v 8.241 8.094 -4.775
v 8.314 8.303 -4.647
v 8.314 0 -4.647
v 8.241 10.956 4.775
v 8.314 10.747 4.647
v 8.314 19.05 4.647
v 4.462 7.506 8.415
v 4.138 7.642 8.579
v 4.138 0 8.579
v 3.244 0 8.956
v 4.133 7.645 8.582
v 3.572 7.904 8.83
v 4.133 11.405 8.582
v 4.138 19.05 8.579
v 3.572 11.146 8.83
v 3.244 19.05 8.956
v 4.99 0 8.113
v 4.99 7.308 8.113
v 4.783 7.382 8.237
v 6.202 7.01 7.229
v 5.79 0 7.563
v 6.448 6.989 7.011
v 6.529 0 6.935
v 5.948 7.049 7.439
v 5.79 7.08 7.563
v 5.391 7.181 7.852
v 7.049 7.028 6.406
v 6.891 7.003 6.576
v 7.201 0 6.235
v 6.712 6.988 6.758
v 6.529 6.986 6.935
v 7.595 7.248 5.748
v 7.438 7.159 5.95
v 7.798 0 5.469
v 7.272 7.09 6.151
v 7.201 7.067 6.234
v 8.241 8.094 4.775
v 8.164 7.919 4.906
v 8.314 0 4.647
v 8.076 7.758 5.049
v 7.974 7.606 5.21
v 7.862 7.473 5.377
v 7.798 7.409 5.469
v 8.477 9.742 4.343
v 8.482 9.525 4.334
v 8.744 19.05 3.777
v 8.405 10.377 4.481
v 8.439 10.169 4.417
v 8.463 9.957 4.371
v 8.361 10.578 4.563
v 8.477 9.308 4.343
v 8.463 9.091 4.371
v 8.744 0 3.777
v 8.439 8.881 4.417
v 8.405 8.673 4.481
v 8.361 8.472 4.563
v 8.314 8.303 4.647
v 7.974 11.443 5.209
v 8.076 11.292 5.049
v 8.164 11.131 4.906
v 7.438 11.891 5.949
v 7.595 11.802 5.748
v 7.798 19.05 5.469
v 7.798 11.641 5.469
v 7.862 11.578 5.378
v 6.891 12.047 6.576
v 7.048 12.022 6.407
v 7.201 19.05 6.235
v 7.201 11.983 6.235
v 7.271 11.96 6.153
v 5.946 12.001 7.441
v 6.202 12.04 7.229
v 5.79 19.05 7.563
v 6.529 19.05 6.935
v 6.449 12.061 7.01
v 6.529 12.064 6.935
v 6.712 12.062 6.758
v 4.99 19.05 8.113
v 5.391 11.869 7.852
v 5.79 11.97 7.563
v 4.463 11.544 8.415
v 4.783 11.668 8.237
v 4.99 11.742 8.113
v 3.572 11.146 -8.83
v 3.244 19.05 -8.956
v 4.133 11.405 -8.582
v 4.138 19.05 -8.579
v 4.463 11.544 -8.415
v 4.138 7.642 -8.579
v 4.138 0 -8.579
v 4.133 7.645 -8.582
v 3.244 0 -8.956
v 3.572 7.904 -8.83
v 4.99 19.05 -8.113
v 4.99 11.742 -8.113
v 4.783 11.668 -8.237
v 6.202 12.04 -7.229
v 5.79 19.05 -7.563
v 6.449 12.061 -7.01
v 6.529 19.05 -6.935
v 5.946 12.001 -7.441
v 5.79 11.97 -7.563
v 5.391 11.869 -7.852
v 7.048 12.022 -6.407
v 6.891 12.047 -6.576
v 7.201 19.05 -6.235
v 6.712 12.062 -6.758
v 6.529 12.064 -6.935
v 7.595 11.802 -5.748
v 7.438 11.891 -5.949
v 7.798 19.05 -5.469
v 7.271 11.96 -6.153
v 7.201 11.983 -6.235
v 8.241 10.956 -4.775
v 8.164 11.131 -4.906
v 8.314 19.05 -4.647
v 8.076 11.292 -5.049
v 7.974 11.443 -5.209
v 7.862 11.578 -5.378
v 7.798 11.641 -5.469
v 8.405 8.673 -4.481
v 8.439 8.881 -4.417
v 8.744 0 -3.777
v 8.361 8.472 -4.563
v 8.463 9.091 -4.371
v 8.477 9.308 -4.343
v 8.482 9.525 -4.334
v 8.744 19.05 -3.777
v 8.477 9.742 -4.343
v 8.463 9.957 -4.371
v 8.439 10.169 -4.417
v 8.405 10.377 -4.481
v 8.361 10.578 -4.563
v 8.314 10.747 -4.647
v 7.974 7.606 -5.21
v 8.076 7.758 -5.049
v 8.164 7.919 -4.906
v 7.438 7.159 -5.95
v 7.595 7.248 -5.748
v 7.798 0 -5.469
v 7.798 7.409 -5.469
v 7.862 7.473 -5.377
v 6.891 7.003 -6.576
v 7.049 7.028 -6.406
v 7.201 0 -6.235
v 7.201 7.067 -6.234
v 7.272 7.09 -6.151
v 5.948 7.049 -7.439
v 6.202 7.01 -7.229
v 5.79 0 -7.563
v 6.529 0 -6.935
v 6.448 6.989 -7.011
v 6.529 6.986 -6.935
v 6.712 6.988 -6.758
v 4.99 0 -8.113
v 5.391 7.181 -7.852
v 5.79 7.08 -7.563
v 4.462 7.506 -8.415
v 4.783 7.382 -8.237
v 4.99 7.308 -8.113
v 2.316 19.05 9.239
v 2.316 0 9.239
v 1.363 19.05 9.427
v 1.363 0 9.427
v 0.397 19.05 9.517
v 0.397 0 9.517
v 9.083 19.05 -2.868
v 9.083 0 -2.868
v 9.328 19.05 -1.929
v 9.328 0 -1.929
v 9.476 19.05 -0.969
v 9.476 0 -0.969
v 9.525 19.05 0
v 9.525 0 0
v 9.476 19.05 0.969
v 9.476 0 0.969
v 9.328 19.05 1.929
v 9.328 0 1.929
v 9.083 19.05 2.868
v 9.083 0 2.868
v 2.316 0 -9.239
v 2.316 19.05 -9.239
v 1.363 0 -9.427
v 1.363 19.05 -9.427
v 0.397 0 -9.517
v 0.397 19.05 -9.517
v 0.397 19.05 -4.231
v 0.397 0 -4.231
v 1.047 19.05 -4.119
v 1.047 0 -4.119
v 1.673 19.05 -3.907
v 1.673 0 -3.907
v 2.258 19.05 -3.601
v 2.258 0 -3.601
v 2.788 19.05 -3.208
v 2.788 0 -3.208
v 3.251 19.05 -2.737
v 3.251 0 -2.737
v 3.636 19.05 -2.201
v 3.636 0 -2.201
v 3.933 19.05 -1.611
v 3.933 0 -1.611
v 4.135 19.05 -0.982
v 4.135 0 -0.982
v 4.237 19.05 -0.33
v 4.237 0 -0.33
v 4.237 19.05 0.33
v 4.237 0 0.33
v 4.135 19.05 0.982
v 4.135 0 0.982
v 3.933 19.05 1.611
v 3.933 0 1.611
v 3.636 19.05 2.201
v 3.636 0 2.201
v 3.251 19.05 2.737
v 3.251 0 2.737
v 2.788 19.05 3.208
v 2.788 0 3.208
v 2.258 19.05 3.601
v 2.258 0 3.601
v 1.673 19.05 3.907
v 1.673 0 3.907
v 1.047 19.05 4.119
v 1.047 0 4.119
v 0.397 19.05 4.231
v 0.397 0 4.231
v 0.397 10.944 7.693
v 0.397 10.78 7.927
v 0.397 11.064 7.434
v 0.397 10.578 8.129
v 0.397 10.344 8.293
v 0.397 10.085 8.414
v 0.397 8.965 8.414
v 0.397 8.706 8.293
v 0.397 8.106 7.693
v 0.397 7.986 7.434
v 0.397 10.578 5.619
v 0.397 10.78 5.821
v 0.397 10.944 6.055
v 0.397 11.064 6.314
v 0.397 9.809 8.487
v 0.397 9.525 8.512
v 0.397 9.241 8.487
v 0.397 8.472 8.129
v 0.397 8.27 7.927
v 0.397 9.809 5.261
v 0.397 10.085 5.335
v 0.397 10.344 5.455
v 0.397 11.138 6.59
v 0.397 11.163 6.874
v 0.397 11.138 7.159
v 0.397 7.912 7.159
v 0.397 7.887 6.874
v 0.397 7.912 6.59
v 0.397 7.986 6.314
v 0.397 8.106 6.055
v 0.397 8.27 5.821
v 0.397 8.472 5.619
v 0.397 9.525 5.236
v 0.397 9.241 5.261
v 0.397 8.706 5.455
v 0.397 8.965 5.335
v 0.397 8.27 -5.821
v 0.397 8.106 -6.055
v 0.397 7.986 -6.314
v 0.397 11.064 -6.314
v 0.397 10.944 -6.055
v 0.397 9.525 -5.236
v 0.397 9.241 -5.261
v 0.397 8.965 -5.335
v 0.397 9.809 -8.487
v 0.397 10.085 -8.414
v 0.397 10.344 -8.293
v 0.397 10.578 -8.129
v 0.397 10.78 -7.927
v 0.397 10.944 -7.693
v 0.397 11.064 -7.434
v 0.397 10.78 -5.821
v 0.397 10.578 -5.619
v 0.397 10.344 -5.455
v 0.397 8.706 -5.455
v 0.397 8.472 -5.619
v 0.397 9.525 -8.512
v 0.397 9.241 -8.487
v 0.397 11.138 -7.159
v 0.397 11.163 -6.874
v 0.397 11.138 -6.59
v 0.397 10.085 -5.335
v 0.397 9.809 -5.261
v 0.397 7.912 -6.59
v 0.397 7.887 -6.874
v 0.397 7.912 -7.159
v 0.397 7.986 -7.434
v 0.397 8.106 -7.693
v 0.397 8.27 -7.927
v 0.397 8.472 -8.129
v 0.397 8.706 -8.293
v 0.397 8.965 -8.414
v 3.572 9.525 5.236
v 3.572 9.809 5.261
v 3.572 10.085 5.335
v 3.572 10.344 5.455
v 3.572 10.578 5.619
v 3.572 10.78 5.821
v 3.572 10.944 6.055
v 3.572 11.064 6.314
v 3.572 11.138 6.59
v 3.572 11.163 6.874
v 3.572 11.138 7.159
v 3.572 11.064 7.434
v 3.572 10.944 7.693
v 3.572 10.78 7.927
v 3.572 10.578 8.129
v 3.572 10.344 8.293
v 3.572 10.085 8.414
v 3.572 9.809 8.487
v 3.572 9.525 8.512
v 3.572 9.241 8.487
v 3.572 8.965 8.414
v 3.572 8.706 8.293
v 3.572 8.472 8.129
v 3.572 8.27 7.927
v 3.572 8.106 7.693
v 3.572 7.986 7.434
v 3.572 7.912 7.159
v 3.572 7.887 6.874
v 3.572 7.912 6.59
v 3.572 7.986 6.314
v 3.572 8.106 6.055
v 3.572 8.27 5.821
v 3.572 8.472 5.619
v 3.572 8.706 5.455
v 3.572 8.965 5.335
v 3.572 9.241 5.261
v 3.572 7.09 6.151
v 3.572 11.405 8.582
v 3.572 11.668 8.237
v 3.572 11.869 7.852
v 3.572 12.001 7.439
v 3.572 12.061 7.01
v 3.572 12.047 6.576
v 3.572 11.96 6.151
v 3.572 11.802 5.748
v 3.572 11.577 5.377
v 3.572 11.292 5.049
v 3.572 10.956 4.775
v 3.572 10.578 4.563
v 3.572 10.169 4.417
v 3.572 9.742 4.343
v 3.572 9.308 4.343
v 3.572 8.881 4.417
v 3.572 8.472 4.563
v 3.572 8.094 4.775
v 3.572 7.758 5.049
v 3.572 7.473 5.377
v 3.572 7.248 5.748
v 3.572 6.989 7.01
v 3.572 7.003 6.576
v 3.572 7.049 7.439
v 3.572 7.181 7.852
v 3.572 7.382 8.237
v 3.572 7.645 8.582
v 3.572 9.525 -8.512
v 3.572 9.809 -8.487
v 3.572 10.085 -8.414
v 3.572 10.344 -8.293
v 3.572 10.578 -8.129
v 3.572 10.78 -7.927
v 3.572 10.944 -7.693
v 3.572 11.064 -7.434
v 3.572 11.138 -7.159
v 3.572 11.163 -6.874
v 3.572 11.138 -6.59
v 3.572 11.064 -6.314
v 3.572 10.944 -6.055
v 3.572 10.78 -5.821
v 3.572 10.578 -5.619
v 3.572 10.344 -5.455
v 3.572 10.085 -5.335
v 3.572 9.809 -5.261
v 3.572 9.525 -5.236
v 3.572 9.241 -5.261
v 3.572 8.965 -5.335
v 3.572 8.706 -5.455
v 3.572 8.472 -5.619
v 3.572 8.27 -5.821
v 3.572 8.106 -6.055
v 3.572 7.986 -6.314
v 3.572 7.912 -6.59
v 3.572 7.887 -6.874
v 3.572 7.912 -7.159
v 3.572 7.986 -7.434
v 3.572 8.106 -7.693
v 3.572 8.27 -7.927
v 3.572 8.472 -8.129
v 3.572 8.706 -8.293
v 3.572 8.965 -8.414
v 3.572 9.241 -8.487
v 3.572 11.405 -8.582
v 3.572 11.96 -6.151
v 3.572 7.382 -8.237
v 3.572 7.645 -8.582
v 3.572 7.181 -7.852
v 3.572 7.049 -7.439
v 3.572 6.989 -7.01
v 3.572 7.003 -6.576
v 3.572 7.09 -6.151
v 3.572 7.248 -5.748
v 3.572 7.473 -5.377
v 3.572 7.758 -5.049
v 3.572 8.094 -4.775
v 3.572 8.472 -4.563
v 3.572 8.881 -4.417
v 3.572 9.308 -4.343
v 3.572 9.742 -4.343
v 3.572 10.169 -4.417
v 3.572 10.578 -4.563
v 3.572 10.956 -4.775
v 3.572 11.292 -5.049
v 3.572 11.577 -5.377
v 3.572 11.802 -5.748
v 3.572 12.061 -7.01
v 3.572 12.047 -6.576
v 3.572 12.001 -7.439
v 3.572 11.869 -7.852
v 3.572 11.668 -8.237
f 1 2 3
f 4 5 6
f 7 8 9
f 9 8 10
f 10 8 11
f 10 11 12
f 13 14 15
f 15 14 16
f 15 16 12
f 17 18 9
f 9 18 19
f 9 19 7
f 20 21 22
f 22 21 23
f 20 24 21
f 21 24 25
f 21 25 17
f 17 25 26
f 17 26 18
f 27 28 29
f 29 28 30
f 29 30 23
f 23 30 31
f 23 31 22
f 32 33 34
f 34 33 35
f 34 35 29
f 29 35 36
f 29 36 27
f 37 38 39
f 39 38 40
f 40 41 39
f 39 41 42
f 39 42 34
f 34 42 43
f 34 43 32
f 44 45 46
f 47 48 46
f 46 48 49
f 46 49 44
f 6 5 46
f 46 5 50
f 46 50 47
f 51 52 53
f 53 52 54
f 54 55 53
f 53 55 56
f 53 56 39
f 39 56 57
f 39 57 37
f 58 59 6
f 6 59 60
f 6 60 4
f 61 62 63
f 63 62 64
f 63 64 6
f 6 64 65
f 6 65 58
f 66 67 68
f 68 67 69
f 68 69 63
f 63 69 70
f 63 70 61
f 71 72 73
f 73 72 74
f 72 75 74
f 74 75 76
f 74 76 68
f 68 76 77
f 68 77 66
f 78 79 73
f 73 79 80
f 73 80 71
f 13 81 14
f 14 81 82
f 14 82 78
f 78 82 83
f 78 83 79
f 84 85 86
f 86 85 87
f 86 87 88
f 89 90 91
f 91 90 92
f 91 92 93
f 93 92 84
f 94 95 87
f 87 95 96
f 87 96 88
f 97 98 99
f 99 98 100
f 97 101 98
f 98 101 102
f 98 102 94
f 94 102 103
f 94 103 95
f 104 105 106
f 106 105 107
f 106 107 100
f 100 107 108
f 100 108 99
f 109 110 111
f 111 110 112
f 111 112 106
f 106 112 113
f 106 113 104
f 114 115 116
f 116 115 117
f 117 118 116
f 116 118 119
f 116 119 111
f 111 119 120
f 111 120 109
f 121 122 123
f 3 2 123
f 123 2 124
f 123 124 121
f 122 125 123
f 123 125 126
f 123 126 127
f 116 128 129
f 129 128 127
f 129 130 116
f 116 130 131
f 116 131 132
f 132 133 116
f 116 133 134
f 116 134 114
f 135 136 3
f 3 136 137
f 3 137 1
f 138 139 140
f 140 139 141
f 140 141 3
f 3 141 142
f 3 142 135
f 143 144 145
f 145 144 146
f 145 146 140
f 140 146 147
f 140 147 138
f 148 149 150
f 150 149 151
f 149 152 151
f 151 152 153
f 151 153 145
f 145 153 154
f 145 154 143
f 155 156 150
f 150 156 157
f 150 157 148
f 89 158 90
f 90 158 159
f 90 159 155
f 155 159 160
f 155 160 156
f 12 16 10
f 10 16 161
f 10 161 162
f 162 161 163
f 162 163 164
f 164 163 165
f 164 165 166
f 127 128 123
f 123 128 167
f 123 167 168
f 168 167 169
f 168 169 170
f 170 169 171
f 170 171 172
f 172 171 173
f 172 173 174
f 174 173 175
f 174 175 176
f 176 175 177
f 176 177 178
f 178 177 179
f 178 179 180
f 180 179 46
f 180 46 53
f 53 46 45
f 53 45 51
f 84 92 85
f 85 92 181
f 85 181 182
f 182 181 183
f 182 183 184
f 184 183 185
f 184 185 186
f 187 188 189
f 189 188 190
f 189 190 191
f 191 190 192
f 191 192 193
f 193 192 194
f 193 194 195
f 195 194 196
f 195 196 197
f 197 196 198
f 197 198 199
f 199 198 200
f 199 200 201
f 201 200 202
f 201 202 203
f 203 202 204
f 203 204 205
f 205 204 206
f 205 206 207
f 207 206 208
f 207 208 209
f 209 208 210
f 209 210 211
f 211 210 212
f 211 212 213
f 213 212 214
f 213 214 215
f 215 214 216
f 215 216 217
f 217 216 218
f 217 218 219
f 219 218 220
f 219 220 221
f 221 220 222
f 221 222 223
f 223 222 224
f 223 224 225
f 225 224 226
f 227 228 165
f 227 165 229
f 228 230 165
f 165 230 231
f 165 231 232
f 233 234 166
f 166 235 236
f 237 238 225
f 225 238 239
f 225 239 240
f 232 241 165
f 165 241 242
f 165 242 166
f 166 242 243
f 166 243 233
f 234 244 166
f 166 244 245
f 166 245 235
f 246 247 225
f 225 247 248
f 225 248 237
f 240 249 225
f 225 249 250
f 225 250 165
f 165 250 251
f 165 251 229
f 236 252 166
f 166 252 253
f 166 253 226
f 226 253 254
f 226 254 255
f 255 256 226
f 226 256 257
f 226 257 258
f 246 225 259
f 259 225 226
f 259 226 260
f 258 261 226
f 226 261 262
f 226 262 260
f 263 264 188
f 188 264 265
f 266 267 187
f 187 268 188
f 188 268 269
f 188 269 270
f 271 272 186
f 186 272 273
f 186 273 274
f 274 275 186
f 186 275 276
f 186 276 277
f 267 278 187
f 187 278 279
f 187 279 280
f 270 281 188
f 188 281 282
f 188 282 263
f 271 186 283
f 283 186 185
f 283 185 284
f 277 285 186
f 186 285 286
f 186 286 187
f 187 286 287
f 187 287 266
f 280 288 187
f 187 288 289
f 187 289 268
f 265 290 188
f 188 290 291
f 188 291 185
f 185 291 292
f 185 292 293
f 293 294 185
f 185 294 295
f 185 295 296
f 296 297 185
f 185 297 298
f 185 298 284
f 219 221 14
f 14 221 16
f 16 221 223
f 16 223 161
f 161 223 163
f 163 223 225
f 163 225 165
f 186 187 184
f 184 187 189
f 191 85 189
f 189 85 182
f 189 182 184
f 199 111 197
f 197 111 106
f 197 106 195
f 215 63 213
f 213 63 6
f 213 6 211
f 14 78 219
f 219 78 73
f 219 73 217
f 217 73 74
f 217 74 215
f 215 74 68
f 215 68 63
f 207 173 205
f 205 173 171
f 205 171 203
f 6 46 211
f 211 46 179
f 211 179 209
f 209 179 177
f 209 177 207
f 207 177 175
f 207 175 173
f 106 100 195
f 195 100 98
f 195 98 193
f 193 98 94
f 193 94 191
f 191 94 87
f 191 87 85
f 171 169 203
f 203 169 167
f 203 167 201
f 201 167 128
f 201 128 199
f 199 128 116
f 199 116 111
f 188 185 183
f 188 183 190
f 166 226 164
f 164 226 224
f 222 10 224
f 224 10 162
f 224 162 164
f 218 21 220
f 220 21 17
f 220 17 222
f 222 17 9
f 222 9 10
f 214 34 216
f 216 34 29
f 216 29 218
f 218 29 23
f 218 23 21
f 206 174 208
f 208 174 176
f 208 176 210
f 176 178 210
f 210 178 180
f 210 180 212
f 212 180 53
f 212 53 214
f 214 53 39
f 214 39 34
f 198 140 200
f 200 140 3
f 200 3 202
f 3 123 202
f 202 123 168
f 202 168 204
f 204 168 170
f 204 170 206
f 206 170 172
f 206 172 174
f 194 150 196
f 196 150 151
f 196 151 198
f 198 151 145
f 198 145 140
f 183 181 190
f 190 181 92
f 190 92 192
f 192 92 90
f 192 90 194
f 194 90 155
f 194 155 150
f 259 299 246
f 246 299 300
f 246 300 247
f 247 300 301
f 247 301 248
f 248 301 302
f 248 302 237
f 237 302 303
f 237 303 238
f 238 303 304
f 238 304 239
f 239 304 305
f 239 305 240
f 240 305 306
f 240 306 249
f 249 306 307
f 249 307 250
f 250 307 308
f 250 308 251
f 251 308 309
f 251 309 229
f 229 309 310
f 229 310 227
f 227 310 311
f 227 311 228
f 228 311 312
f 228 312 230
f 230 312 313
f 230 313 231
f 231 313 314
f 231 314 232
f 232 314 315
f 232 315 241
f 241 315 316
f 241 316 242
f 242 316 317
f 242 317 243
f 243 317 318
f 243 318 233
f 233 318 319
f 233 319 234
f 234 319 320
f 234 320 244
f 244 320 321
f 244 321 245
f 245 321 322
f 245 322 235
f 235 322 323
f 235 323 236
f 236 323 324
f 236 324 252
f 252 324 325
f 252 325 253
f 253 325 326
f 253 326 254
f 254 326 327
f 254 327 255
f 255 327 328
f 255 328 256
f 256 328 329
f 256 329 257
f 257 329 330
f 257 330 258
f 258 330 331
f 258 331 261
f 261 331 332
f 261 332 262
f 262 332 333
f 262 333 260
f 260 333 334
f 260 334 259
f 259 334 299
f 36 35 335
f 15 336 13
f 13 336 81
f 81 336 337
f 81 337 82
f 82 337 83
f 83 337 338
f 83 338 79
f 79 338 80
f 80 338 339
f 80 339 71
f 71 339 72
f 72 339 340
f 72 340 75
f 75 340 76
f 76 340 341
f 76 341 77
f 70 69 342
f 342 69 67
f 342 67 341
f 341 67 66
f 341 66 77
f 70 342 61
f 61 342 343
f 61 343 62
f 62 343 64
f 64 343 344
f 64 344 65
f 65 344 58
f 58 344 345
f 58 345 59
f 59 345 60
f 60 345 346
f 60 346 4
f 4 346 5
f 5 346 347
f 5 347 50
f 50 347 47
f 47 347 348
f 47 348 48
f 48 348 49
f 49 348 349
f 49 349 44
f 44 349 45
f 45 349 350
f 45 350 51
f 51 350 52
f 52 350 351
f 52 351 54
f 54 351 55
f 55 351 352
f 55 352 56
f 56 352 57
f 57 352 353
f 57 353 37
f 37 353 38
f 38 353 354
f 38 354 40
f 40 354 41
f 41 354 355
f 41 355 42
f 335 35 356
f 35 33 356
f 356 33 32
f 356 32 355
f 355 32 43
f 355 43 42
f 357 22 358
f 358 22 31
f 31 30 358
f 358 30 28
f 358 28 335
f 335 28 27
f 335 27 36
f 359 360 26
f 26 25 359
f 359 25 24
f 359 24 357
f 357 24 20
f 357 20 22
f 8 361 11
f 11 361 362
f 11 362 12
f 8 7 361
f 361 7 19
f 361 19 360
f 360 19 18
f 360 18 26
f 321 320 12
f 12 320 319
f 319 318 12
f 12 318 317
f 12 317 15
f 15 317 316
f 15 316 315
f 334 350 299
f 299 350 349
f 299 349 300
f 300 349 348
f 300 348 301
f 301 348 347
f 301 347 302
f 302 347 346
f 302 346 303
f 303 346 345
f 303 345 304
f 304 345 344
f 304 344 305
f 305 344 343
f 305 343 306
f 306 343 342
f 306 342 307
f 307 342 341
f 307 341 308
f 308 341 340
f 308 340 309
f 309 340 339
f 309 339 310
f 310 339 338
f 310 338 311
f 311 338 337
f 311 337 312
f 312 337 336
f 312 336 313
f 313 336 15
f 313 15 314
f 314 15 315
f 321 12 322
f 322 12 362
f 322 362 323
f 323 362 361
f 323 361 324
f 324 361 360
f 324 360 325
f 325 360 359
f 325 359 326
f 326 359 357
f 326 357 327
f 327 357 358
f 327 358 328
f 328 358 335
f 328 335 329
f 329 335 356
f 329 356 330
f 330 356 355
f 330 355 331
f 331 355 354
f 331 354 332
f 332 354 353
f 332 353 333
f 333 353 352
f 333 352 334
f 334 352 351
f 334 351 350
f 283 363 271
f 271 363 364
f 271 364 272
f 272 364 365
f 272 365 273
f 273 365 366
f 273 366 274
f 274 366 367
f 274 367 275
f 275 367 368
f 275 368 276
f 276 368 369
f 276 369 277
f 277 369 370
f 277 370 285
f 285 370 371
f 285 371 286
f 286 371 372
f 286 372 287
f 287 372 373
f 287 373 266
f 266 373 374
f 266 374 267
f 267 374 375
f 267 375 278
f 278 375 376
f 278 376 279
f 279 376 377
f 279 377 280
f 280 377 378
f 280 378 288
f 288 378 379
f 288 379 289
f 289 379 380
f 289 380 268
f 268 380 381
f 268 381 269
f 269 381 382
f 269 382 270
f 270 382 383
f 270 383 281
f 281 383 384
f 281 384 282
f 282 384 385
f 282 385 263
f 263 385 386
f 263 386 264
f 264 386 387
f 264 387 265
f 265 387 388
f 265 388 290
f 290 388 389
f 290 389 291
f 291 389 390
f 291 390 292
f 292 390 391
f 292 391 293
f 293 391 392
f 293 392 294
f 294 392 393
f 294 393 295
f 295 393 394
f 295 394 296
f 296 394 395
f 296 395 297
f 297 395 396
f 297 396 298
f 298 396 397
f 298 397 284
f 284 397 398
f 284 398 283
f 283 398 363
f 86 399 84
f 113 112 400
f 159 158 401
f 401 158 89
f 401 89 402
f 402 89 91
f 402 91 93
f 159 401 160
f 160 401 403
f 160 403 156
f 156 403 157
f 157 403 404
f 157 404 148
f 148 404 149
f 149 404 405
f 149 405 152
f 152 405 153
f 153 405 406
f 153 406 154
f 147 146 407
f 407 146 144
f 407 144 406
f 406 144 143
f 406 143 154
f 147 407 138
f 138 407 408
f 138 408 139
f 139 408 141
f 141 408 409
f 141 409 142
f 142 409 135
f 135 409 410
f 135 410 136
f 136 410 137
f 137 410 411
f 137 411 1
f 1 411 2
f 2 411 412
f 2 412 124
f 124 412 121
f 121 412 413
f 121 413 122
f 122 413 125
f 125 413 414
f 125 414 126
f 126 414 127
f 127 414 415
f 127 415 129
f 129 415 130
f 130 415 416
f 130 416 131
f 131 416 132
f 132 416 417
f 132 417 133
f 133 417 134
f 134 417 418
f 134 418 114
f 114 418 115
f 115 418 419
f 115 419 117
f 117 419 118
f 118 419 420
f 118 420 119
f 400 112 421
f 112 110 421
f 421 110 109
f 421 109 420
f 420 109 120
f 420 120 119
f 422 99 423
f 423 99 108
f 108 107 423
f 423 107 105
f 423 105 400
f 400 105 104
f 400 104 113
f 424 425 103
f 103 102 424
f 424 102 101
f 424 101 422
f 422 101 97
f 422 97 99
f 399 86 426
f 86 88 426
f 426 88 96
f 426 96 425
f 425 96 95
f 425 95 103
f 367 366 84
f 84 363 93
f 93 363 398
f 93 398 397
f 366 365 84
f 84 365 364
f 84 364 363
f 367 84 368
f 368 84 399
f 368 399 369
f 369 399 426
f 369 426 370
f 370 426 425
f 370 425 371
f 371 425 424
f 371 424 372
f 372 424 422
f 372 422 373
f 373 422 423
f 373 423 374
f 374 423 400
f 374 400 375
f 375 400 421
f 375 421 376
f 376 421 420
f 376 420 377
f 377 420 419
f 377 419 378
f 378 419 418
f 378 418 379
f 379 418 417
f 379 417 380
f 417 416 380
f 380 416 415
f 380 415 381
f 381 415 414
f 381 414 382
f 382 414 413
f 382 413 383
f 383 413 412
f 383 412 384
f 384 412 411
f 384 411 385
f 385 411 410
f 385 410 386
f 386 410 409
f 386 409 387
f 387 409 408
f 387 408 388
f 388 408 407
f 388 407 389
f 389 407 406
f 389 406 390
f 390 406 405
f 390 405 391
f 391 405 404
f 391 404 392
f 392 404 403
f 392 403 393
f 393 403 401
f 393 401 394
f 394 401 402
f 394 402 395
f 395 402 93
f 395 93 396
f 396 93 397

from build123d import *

# Parameters (mm, degrees)
BOSS_EXTRUDE1_DEPTH = 19.05
SKETCH4_R           = 1.6383
CUT_EXTRUDE1_DEPTH  = 4.175
SKETCH5_R           = 2.54
CUT_EXTRUDE2_DEPTH  = 6.953125


with BuildPart() as part:
    # Sketch1 → Boss-Extrude1 (new body)
    with BuildSketch(Plane(origin=(0, 0, 0), x_dir=(1, 0, 0), z_dir=(0, 1, 0))):
        with BuildLine():
            Line((0.396875, 9.516728179), (0.396875, 4.231428864))
            ThreePointArc((0.396875, 4.231428864), (4.25, 0), (0.396875, -4.231428864))
            Line((0.396875, -4.231428864), (0.396875, -9.516728179))
            ThreePointArc((0.396875, -9.516728179), (9.525, 0), (0.396875, 9.516728179))
        make_face()
    extrude(amount=BOSS_EXTRUDE1_DEPTH)

    # Sketch4 → Cut-Extrude1 (cut, through all)
    with BuildSketch(Plane(origin=(3.571875, 0, 0), x_dir=(0, 0, -1), z_dir=(1, 0, 0))):
        with Locations((-6.874078522, 9.525)):
            Circle(SKETCH4_R)
    cut_extrude1 = extrude(amount=-CUT_EXTRUDE1_DEPTH, mode=Mode.SUBTRACT)

    # Sketch5 → Cut-Extrude2 (cut, through all)
    with BuildSketch(Plane(origin=(3.571875, 0, 0), x_dir=(0, 0, -1), z_dir=(1, 0, 0))):
        with Locations((-6.874078522, 9.525)):
            Circle(SKETCH5_R)
    cut_extrude2 = extrude(amount=CUT_EXTRUDE2_DEPTH, mode=Mode.SUBTRACT)

    # Mirror1: Cut-Extrude1, Cut-Extrude2 across plane
    add(cut_extrude1.mirror(Plane.XY), mode=Mode.SUBTRACT)
    add(cut_extrude2.mirror(Plane.XY), mode=Mode.SUBTRACT)


solid = part.part
